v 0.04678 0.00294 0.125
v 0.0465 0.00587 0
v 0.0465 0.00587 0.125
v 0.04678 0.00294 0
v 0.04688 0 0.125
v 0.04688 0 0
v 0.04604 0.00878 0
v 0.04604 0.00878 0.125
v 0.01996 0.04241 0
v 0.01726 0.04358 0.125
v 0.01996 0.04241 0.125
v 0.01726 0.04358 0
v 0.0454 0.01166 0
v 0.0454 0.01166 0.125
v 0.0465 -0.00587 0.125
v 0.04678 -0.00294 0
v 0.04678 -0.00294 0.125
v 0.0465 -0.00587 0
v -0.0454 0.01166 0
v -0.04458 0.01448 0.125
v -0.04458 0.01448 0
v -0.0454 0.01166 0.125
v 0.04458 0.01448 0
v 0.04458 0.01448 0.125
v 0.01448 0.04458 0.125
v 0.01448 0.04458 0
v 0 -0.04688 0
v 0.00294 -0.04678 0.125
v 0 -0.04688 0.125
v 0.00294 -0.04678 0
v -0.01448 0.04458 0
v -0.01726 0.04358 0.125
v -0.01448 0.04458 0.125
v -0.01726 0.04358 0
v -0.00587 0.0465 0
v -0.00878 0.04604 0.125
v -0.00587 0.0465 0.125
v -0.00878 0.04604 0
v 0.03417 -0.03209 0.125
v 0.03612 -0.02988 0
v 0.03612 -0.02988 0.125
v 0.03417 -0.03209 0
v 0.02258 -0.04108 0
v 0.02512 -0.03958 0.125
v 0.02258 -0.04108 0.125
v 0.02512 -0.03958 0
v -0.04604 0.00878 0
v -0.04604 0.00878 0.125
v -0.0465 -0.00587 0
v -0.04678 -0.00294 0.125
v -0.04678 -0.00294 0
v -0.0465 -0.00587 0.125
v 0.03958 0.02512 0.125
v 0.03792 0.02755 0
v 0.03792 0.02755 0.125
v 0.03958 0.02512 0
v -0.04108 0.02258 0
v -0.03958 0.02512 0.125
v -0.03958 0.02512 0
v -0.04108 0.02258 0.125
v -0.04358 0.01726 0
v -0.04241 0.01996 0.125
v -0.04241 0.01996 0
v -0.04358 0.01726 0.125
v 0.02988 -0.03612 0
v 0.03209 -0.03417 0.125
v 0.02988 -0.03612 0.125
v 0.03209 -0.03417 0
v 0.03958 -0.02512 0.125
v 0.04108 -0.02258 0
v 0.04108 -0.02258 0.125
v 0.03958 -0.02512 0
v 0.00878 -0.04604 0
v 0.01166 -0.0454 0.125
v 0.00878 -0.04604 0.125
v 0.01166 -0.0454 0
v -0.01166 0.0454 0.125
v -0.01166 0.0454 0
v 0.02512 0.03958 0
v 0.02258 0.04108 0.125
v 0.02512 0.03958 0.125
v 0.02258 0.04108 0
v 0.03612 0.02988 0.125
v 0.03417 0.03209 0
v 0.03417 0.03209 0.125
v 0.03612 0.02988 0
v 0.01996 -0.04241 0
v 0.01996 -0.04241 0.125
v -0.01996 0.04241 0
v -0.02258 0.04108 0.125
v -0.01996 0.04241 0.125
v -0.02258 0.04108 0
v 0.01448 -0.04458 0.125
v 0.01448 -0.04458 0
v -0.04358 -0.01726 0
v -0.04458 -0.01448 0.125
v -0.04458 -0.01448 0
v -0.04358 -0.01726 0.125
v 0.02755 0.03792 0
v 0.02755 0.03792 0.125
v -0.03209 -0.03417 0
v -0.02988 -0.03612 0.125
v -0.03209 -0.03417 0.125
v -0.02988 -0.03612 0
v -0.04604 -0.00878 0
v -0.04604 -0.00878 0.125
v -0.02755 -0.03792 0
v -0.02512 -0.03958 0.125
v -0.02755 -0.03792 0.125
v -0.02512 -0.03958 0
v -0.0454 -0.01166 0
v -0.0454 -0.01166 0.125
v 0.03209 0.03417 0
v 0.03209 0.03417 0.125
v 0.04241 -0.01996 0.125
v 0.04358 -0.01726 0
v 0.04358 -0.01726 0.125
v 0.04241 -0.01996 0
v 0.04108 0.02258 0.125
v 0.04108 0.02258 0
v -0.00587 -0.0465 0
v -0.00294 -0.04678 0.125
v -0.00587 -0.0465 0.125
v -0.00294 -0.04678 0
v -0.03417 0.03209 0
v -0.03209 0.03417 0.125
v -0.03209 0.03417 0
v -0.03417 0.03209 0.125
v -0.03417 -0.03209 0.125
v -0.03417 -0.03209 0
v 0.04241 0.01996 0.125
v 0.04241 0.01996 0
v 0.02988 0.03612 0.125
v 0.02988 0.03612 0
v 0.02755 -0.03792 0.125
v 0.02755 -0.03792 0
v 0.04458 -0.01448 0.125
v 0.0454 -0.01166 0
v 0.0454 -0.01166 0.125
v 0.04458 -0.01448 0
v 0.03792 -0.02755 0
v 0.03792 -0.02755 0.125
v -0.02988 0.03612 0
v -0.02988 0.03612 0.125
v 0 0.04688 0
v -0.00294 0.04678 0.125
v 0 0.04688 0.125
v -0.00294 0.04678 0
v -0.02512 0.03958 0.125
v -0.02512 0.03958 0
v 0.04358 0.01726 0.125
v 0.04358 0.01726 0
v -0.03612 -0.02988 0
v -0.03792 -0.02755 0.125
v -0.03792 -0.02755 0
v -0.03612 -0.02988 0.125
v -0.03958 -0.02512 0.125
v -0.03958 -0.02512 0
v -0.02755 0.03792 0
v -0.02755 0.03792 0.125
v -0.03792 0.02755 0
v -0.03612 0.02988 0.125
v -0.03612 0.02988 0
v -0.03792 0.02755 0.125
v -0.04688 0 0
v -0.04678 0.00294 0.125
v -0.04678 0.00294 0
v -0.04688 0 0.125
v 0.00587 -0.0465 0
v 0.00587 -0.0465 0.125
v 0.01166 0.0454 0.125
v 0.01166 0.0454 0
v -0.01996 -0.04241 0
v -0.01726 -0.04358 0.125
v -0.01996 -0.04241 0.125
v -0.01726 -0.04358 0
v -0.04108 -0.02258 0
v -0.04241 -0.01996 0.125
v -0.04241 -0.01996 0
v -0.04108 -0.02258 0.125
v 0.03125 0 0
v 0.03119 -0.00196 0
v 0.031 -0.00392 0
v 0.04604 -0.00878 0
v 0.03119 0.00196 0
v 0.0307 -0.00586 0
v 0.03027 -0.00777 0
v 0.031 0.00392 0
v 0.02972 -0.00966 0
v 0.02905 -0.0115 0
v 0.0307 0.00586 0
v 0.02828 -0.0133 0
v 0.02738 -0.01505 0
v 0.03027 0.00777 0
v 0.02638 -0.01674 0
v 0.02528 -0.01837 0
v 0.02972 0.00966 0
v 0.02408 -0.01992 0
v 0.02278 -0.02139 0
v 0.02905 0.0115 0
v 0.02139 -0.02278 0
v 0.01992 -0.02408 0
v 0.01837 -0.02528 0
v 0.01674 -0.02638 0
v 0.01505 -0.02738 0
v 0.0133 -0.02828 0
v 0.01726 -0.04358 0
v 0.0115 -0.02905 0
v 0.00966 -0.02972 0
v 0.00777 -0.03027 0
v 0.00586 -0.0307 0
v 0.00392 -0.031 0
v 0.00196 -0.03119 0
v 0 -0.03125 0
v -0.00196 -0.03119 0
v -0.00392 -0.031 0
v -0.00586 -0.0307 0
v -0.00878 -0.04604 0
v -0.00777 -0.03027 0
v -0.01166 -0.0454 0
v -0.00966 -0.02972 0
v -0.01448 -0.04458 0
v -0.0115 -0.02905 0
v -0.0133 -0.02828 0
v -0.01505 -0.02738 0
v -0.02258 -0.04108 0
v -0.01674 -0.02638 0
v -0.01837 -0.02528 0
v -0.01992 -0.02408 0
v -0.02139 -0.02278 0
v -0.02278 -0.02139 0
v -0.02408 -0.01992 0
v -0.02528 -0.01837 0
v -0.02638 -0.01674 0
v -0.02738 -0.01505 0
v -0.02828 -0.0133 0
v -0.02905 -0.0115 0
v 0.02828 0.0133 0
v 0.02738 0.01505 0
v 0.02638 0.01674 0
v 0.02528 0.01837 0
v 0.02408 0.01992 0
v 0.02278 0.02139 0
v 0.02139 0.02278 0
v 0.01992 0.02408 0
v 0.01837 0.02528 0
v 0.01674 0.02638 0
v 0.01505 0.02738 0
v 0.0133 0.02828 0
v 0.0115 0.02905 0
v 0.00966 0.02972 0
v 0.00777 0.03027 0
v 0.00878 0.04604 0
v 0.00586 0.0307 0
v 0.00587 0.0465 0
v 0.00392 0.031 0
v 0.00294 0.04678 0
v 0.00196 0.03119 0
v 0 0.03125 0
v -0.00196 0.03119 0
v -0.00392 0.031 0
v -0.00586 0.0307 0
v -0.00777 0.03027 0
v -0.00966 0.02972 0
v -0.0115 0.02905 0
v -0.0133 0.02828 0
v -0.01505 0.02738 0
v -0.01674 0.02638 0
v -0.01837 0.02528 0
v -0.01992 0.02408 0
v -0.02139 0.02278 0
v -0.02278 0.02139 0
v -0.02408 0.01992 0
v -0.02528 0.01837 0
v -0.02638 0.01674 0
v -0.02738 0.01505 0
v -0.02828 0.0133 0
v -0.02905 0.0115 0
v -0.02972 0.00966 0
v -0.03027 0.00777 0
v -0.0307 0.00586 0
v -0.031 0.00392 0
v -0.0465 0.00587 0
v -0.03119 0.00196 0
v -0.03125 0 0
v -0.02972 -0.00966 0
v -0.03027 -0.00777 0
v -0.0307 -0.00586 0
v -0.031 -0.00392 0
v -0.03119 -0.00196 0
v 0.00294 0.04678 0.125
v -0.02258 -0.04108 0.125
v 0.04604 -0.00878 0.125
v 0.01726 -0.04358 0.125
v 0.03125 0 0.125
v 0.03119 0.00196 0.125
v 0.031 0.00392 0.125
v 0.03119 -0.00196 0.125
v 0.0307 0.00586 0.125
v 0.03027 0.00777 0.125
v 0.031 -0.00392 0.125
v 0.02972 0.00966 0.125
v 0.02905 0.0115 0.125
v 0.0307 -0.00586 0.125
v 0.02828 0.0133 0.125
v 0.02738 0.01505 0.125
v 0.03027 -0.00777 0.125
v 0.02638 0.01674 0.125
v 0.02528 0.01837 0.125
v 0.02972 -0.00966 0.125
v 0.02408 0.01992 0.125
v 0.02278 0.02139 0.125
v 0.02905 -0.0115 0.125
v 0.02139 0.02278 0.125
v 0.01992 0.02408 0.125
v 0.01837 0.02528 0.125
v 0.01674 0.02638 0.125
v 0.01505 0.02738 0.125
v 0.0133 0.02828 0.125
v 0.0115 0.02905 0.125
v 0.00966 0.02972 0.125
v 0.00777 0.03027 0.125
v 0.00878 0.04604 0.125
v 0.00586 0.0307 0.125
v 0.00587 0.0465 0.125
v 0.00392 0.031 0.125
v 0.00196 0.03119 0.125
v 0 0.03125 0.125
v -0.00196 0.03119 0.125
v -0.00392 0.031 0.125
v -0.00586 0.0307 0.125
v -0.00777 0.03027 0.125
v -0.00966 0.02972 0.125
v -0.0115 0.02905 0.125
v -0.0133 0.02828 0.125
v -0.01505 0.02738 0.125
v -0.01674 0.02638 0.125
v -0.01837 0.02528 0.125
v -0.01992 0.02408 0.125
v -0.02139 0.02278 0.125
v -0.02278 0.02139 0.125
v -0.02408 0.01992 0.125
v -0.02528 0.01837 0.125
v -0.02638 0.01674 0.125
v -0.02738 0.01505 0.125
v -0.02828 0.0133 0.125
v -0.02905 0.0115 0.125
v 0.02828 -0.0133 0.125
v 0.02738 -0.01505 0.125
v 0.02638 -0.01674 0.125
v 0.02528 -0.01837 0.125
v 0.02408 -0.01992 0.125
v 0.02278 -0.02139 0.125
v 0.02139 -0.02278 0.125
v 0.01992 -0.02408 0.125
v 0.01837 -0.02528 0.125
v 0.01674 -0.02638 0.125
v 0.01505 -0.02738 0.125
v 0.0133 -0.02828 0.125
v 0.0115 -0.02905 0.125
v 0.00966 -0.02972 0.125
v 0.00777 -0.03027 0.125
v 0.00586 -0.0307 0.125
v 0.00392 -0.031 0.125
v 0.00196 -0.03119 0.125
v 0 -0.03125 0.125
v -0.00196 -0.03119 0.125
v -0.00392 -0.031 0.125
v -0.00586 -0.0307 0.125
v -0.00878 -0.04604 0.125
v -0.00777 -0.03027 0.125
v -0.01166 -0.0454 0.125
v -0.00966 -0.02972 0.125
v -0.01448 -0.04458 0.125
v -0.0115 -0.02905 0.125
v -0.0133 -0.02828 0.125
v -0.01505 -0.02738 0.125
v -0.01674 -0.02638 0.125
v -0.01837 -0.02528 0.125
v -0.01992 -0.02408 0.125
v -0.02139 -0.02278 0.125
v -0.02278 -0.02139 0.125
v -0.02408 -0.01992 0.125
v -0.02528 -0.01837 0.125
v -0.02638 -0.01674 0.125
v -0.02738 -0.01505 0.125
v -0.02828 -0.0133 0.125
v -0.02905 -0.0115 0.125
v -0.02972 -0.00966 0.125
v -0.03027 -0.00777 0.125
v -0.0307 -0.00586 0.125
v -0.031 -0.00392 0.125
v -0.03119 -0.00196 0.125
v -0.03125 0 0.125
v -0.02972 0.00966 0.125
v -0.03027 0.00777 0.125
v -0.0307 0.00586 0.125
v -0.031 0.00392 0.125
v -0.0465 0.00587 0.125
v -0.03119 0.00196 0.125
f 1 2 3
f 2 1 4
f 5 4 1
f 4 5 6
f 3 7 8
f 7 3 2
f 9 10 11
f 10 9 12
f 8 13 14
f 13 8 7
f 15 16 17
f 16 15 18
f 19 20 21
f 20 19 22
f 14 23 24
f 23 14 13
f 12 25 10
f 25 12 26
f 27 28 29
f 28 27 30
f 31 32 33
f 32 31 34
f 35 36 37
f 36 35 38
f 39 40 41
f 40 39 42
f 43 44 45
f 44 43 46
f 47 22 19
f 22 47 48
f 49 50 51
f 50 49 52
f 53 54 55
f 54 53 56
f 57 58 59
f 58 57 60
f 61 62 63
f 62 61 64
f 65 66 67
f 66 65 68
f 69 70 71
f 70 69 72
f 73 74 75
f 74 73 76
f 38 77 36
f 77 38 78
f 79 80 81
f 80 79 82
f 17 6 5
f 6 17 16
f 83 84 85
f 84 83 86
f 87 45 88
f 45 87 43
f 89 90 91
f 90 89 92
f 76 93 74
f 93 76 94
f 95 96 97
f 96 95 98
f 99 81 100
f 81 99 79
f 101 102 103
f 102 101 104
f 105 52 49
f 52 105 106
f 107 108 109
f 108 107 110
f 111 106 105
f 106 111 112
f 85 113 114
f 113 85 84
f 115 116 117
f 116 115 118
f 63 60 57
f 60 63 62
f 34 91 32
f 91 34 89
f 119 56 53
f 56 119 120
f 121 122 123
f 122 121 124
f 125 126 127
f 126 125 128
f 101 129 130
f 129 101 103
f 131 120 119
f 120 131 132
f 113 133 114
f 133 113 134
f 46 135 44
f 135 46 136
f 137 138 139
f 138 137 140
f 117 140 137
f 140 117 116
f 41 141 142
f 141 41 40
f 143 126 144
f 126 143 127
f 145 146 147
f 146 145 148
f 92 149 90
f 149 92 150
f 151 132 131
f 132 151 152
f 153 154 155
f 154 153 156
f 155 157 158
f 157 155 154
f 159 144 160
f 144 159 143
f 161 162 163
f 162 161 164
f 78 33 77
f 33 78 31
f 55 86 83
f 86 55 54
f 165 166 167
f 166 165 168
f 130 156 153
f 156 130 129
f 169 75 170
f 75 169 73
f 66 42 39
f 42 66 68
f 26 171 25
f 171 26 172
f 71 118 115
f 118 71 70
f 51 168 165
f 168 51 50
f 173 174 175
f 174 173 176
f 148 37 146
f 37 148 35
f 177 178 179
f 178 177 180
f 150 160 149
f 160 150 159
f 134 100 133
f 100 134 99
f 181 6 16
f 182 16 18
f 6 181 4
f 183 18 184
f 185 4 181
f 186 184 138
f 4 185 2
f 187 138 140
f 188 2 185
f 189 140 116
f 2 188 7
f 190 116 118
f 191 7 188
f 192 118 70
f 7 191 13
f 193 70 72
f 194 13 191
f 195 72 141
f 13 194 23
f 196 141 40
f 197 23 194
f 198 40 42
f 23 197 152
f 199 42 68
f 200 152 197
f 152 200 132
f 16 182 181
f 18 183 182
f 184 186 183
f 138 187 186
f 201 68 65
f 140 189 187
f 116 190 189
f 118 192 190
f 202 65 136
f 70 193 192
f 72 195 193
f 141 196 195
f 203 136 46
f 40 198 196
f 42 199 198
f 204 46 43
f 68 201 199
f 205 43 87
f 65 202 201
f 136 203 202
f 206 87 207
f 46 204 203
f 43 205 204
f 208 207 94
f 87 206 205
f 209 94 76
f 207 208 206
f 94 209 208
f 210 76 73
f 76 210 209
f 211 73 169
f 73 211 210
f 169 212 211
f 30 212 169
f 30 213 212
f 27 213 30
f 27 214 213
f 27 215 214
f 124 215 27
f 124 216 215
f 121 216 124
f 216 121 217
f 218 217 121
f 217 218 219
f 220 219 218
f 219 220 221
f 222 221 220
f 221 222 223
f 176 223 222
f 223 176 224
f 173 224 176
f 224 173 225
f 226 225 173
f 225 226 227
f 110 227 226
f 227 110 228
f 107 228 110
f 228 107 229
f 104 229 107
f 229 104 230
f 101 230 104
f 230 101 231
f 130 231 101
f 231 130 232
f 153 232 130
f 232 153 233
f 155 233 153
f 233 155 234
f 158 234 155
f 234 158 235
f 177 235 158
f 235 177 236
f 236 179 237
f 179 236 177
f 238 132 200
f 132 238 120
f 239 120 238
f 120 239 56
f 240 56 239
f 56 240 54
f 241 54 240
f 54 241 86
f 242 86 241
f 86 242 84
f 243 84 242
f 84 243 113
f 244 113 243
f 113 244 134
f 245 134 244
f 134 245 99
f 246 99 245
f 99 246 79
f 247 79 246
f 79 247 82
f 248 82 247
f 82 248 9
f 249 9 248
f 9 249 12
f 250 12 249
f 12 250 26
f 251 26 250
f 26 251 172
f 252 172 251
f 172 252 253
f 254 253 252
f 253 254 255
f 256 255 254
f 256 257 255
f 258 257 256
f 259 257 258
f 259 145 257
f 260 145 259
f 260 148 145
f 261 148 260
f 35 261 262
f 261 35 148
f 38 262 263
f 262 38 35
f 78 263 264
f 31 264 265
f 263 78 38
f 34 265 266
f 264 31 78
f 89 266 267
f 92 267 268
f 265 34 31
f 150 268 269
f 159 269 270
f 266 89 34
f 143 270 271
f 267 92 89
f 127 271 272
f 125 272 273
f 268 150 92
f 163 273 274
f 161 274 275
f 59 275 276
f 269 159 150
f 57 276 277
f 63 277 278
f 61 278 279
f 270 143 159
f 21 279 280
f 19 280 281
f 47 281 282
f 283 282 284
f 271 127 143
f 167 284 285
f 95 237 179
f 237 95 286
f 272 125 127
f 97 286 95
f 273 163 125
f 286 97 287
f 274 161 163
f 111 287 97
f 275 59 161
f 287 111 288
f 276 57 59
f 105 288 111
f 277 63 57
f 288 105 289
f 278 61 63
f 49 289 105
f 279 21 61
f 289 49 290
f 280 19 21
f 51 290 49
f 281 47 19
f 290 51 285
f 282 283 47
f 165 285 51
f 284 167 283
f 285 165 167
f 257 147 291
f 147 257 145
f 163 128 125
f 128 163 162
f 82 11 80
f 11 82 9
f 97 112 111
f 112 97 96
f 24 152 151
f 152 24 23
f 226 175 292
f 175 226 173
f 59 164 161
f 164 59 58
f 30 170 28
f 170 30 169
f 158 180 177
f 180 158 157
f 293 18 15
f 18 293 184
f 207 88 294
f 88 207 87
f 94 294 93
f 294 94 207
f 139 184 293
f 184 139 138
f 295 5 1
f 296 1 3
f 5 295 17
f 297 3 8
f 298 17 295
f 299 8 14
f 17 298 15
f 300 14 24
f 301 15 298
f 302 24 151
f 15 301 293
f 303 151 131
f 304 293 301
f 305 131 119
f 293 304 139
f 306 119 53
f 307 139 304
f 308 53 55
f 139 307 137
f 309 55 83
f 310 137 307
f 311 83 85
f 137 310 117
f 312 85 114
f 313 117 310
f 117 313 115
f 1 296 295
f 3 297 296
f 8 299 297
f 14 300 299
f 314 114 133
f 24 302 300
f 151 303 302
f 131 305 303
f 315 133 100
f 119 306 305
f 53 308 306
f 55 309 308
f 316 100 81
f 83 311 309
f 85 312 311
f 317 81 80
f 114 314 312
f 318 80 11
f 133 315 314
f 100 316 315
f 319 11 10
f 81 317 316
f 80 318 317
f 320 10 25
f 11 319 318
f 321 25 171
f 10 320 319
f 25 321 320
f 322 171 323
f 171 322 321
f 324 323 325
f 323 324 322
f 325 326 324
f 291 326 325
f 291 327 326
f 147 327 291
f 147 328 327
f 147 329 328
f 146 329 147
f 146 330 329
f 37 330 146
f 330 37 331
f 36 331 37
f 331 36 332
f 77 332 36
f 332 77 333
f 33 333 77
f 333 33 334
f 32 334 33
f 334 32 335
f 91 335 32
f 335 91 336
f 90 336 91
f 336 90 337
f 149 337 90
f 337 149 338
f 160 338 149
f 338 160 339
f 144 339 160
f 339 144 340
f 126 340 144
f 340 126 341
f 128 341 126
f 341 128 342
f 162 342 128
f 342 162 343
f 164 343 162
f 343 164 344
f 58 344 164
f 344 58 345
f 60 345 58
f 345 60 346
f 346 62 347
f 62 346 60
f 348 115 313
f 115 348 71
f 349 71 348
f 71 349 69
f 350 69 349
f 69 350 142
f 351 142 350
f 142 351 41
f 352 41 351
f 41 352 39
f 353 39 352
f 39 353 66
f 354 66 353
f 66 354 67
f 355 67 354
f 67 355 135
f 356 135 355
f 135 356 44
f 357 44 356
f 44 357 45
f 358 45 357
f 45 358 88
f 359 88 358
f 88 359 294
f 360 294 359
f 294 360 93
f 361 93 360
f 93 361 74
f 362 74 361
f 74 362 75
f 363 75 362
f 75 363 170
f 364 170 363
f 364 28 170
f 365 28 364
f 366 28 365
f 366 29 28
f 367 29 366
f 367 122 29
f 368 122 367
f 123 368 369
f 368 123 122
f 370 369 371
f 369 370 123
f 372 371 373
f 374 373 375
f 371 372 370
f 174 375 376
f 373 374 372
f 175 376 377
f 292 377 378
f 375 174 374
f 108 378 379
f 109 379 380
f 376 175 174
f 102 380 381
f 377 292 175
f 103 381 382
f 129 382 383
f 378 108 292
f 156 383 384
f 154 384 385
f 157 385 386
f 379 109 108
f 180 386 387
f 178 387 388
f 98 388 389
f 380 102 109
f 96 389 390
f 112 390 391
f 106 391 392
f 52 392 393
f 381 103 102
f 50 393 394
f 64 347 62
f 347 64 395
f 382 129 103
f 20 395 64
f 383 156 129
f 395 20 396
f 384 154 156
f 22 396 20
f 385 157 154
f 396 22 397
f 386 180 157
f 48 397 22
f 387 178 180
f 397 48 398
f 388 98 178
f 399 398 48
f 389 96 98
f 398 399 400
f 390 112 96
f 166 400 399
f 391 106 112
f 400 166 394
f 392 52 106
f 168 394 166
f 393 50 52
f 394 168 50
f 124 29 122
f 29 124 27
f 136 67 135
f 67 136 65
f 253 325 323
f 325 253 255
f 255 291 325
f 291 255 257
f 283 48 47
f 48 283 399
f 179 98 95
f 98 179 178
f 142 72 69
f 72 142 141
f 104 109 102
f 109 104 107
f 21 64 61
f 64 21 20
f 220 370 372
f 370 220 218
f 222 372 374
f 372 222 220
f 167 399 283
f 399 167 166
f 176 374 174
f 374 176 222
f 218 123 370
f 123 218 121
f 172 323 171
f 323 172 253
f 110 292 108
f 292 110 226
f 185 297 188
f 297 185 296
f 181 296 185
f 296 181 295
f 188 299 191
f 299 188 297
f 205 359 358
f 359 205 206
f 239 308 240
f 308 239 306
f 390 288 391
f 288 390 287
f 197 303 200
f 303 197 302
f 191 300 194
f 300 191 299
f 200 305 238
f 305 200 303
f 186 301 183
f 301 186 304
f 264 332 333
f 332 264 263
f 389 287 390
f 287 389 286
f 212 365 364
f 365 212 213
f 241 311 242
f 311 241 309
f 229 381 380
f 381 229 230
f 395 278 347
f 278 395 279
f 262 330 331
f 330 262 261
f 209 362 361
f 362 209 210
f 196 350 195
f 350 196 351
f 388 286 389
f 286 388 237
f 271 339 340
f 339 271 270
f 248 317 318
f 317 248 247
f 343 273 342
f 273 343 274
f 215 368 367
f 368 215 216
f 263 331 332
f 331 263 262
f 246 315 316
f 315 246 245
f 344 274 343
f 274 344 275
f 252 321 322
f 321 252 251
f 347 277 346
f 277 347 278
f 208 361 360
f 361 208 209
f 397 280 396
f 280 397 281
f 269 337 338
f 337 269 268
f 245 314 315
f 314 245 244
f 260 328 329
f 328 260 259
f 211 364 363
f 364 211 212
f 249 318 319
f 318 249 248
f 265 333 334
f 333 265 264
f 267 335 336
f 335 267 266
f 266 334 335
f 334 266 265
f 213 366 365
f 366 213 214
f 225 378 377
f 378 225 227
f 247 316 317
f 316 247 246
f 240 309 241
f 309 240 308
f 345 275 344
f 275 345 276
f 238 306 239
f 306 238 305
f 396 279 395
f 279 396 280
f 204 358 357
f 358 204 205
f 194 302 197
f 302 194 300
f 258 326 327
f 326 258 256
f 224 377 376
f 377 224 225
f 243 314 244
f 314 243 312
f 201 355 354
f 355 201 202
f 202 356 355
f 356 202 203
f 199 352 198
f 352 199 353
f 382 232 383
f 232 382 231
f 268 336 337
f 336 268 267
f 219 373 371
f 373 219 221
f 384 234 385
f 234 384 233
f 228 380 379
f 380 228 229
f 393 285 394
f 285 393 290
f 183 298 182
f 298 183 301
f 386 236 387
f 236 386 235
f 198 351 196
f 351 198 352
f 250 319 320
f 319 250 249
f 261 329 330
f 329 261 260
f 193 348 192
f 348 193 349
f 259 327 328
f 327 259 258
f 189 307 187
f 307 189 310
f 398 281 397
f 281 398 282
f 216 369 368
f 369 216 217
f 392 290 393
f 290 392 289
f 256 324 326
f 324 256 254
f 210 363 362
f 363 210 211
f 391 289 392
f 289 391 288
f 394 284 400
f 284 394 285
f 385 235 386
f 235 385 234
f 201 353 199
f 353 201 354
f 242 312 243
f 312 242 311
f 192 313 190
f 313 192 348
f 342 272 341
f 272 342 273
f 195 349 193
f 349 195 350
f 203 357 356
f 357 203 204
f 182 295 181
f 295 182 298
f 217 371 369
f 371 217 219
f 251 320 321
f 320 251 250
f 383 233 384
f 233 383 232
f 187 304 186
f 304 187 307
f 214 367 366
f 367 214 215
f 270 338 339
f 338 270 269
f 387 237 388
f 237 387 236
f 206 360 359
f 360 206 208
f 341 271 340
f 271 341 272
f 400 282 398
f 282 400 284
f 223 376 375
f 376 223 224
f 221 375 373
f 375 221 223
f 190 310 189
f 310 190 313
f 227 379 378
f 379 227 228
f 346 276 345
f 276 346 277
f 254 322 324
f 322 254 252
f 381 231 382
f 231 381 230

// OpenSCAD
// file: MMlib/paper_tube.scad
//################################################################
// paper tube.scad - creates simple hollow cylinder
// (c) 2021 - Roie R. Black
// docs: https://rblack.github.io/math-magik/magik/paper_tube.html

$fn = 100;

module paper_tube(r=1, h=2, t=0.25) {
  th = 3 * h;
  difference() {
    cylinder(r=r+t,h=h);
    translate([0,0,-h])
      cylinder(r=r, h=th);
  }
}

paper_tube();
// file: ../../materials.scad
//###########################################
// materials.scad
// (c) 2021 - Roie R. Black
//*******************************************

tube_thickness = 1/64;
tube_height = 1/8;
post_diameter = 1/16;
// main file
//#################################################
// wing_mount.scad
// (c) 2021 Roie R. Black
//=================================================
include <../../materials.scad>
use <MMlib/paper_tube.scad>

module stab_mount() {
  color("Yellow")
	  paper_tube(post_diameter/2,tube_height,tube_thickness);
}

stab_mount();
